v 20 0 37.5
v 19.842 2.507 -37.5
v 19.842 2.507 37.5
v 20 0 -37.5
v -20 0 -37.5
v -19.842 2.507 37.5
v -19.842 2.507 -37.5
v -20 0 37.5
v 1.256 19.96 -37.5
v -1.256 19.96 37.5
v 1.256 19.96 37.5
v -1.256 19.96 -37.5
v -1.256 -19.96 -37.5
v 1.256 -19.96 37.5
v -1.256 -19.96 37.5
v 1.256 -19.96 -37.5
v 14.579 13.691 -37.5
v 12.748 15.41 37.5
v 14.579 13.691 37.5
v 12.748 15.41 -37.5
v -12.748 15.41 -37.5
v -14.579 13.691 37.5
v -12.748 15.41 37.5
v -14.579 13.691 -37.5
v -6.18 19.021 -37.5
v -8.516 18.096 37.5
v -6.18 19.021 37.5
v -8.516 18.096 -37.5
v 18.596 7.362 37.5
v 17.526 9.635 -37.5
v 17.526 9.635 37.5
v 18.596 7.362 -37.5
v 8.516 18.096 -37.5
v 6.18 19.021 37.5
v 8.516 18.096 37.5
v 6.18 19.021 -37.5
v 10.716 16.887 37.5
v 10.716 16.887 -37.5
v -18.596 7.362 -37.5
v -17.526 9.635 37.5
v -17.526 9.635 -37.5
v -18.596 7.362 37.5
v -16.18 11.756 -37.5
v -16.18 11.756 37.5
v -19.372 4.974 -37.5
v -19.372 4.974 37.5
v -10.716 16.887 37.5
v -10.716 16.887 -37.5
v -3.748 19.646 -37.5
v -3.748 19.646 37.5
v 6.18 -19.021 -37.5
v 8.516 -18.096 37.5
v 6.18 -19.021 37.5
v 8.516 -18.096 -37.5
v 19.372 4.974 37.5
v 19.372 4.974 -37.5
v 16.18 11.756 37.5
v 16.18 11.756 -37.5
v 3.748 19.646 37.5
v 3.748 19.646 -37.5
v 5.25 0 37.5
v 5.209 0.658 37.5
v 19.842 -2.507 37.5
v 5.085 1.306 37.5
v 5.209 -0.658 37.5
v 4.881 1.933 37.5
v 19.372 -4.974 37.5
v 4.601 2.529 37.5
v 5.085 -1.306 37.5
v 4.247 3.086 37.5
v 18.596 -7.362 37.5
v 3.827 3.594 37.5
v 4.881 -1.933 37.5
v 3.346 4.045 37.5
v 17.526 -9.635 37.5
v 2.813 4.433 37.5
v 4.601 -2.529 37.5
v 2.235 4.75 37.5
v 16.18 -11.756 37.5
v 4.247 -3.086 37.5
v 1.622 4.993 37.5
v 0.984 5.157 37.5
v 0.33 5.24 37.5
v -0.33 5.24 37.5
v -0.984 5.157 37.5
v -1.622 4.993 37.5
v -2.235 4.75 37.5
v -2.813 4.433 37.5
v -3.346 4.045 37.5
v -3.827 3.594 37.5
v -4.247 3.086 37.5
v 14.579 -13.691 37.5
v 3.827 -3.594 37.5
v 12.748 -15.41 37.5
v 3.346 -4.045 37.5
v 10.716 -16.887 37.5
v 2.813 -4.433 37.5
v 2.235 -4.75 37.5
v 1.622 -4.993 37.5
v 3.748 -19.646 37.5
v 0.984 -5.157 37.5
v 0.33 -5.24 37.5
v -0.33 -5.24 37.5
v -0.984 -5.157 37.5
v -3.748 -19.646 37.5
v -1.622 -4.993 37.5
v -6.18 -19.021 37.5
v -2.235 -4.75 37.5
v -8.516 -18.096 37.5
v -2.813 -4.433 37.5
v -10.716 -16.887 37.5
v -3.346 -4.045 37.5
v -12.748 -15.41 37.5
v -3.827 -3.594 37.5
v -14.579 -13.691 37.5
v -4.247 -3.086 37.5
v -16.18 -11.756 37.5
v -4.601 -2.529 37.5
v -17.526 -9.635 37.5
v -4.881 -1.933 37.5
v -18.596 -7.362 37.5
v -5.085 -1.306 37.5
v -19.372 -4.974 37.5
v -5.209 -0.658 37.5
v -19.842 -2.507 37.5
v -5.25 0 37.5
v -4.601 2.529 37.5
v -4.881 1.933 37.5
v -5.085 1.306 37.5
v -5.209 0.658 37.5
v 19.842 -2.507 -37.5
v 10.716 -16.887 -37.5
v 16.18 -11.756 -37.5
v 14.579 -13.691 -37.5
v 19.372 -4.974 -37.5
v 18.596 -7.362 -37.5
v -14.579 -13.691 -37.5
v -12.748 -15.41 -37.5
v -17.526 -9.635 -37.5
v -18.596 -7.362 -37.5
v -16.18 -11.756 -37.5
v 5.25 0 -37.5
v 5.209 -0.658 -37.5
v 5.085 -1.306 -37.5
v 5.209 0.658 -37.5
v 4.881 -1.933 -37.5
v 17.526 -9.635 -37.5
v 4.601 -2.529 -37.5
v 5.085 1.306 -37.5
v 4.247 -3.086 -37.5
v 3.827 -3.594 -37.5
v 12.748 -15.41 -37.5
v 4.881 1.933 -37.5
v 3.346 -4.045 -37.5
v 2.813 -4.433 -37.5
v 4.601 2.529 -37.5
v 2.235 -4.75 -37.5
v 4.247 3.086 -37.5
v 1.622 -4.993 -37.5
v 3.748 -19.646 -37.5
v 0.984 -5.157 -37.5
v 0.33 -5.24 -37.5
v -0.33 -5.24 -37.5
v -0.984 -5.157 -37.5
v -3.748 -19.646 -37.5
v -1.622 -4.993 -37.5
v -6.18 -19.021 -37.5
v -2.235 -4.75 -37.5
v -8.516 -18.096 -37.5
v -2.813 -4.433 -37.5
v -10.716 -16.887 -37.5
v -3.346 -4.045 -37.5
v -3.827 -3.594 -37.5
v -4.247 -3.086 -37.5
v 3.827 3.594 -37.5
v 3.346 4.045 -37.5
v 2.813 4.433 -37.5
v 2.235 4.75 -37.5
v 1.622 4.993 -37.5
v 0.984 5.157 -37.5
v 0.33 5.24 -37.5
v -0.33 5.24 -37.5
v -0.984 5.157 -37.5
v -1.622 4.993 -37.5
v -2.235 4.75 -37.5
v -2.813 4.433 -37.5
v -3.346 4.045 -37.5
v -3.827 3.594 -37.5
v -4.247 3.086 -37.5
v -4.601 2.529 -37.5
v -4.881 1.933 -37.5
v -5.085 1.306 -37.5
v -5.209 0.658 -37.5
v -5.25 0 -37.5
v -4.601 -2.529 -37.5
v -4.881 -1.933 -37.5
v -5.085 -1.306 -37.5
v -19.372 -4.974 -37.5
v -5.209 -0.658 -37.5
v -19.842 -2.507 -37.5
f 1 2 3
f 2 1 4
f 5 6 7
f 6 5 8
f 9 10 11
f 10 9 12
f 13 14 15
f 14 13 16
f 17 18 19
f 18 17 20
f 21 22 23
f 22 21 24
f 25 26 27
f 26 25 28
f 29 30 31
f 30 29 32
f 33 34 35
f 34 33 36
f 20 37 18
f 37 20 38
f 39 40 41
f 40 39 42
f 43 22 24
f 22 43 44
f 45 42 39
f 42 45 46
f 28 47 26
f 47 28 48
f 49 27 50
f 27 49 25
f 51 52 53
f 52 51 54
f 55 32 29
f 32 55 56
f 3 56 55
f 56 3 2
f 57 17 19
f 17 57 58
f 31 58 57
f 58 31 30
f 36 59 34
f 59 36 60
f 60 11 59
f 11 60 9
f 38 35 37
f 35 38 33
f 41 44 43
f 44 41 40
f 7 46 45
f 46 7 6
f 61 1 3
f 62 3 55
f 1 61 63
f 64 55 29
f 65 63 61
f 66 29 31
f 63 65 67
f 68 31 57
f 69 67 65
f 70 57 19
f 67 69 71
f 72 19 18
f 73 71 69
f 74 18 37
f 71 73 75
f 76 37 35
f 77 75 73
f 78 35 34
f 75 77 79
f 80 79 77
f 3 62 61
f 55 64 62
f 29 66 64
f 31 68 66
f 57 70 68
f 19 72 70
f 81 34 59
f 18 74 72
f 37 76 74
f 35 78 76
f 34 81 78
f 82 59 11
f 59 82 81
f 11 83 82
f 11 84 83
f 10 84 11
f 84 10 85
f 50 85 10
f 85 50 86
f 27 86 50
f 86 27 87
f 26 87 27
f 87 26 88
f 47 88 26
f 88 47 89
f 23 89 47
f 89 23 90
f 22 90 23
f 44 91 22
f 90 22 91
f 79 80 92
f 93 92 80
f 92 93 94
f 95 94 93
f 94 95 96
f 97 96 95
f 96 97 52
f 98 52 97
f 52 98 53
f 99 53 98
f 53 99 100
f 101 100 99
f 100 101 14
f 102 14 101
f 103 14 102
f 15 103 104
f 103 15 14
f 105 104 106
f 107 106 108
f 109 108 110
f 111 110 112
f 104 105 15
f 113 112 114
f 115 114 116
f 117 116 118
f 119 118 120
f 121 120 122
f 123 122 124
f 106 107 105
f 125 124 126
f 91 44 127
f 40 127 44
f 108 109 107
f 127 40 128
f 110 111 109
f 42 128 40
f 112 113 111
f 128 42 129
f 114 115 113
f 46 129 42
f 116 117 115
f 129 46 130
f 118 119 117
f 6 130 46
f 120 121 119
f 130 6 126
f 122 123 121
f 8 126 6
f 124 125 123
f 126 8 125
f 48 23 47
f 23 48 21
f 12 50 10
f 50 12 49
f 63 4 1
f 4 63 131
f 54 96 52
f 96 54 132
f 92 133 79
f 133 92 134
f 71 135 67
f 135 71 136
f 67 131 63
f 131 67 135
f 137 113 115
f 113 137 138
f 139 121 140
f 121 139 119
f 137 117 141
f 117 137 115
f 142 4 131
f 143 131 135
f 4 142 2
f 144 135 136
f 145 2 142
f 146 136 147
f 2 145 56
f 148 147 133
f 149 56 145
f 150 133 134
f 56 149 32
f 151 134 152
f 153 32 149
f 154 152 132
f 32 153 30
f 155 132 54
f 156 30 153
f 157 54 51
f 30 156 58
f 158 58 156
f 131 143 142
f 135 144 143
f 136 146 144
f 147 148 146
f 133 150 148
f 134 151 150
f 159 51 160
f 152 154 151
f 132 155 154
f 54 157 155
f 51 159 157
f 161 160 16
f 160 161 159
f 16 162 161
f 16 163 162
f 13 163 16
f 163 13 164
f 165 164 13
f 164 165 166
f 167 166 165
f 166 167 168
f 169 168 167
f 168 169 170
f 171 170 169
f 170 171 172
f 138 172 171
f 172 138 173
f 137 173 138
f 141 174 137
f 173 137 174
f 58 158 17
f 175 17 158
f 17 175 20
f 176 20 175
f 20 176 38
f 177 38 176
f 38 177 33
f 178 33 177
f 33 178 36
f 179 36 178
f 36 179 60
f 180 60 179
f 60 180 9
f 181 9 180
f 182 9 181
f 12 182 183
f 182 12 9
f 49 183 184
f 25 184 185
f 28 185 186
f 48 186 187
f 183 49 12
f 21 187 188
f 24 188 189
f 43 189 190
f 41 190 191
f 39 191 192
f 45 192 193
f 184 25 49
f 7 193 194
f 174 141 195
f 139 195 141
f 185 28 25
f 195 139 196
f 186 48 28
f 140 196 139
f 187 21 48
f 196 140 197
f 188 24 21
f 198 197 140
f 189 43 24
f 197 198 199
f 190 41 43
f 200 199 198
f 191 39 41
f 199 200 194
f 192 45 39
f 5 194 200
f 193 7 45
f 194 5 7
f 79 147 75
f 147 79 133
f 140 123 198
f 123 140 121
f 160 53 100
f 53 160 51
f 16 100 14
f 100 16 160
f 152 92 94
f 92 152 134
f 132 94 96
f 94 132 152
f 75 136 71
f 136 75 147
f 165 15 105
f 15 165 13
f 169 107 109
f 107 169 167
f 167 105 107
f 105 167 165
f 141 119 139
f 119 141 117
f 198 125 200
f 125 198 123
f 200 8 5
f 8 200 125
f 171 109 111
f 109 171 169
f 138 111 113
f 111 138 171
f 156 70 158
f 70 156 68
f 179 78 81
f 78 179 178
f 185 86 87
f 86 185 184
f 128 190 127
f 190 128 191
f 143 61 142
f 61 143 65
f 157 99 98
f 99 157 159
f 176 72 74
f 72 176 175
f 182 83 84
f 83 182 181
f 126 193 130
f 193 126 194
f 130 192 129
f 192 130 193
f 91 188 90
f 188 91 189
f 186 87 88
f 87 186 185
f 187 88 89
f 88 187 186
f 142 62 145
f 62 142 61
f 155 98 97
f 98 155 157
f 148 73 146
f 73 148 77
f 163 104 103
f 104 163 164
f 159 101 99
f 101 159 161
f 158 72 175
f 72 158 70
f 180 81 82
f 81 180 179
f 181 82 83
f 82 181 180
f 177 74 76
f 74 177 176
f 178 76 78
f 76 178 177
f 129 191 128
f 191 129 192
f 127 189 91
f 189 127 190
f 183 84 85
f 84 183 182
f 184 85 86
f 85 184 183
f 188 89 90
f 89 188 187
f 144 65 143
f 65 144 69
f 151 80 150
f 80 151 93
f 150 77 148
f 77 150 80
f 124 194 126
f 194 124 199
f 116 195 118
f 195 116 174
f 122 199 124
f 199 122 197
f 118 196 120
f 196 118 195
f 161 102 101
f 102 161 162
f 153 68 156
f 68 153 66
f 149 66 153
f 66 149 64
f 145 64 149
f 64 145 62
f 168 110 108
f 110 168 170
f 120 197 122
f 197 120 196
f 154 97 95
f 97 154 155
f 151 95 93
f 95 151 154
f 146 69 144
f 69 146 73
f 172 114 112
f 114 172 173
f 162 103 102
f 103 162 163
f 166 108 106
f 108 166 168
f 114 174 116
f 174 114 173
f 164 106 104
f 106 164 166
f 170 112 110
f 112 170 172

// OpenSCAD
$fn = 50;


difference() {
	union() {
		translate(v = [0, 0, -37.5000000000]) {
			cylinder(h = 75, r = 20.0000000000);
		}
	}
	union() {
		translate(v = [0, 0, -100.0000000000]) {
			cylinder(h = 200, r = 5.2500000000);
		}
	}
}
